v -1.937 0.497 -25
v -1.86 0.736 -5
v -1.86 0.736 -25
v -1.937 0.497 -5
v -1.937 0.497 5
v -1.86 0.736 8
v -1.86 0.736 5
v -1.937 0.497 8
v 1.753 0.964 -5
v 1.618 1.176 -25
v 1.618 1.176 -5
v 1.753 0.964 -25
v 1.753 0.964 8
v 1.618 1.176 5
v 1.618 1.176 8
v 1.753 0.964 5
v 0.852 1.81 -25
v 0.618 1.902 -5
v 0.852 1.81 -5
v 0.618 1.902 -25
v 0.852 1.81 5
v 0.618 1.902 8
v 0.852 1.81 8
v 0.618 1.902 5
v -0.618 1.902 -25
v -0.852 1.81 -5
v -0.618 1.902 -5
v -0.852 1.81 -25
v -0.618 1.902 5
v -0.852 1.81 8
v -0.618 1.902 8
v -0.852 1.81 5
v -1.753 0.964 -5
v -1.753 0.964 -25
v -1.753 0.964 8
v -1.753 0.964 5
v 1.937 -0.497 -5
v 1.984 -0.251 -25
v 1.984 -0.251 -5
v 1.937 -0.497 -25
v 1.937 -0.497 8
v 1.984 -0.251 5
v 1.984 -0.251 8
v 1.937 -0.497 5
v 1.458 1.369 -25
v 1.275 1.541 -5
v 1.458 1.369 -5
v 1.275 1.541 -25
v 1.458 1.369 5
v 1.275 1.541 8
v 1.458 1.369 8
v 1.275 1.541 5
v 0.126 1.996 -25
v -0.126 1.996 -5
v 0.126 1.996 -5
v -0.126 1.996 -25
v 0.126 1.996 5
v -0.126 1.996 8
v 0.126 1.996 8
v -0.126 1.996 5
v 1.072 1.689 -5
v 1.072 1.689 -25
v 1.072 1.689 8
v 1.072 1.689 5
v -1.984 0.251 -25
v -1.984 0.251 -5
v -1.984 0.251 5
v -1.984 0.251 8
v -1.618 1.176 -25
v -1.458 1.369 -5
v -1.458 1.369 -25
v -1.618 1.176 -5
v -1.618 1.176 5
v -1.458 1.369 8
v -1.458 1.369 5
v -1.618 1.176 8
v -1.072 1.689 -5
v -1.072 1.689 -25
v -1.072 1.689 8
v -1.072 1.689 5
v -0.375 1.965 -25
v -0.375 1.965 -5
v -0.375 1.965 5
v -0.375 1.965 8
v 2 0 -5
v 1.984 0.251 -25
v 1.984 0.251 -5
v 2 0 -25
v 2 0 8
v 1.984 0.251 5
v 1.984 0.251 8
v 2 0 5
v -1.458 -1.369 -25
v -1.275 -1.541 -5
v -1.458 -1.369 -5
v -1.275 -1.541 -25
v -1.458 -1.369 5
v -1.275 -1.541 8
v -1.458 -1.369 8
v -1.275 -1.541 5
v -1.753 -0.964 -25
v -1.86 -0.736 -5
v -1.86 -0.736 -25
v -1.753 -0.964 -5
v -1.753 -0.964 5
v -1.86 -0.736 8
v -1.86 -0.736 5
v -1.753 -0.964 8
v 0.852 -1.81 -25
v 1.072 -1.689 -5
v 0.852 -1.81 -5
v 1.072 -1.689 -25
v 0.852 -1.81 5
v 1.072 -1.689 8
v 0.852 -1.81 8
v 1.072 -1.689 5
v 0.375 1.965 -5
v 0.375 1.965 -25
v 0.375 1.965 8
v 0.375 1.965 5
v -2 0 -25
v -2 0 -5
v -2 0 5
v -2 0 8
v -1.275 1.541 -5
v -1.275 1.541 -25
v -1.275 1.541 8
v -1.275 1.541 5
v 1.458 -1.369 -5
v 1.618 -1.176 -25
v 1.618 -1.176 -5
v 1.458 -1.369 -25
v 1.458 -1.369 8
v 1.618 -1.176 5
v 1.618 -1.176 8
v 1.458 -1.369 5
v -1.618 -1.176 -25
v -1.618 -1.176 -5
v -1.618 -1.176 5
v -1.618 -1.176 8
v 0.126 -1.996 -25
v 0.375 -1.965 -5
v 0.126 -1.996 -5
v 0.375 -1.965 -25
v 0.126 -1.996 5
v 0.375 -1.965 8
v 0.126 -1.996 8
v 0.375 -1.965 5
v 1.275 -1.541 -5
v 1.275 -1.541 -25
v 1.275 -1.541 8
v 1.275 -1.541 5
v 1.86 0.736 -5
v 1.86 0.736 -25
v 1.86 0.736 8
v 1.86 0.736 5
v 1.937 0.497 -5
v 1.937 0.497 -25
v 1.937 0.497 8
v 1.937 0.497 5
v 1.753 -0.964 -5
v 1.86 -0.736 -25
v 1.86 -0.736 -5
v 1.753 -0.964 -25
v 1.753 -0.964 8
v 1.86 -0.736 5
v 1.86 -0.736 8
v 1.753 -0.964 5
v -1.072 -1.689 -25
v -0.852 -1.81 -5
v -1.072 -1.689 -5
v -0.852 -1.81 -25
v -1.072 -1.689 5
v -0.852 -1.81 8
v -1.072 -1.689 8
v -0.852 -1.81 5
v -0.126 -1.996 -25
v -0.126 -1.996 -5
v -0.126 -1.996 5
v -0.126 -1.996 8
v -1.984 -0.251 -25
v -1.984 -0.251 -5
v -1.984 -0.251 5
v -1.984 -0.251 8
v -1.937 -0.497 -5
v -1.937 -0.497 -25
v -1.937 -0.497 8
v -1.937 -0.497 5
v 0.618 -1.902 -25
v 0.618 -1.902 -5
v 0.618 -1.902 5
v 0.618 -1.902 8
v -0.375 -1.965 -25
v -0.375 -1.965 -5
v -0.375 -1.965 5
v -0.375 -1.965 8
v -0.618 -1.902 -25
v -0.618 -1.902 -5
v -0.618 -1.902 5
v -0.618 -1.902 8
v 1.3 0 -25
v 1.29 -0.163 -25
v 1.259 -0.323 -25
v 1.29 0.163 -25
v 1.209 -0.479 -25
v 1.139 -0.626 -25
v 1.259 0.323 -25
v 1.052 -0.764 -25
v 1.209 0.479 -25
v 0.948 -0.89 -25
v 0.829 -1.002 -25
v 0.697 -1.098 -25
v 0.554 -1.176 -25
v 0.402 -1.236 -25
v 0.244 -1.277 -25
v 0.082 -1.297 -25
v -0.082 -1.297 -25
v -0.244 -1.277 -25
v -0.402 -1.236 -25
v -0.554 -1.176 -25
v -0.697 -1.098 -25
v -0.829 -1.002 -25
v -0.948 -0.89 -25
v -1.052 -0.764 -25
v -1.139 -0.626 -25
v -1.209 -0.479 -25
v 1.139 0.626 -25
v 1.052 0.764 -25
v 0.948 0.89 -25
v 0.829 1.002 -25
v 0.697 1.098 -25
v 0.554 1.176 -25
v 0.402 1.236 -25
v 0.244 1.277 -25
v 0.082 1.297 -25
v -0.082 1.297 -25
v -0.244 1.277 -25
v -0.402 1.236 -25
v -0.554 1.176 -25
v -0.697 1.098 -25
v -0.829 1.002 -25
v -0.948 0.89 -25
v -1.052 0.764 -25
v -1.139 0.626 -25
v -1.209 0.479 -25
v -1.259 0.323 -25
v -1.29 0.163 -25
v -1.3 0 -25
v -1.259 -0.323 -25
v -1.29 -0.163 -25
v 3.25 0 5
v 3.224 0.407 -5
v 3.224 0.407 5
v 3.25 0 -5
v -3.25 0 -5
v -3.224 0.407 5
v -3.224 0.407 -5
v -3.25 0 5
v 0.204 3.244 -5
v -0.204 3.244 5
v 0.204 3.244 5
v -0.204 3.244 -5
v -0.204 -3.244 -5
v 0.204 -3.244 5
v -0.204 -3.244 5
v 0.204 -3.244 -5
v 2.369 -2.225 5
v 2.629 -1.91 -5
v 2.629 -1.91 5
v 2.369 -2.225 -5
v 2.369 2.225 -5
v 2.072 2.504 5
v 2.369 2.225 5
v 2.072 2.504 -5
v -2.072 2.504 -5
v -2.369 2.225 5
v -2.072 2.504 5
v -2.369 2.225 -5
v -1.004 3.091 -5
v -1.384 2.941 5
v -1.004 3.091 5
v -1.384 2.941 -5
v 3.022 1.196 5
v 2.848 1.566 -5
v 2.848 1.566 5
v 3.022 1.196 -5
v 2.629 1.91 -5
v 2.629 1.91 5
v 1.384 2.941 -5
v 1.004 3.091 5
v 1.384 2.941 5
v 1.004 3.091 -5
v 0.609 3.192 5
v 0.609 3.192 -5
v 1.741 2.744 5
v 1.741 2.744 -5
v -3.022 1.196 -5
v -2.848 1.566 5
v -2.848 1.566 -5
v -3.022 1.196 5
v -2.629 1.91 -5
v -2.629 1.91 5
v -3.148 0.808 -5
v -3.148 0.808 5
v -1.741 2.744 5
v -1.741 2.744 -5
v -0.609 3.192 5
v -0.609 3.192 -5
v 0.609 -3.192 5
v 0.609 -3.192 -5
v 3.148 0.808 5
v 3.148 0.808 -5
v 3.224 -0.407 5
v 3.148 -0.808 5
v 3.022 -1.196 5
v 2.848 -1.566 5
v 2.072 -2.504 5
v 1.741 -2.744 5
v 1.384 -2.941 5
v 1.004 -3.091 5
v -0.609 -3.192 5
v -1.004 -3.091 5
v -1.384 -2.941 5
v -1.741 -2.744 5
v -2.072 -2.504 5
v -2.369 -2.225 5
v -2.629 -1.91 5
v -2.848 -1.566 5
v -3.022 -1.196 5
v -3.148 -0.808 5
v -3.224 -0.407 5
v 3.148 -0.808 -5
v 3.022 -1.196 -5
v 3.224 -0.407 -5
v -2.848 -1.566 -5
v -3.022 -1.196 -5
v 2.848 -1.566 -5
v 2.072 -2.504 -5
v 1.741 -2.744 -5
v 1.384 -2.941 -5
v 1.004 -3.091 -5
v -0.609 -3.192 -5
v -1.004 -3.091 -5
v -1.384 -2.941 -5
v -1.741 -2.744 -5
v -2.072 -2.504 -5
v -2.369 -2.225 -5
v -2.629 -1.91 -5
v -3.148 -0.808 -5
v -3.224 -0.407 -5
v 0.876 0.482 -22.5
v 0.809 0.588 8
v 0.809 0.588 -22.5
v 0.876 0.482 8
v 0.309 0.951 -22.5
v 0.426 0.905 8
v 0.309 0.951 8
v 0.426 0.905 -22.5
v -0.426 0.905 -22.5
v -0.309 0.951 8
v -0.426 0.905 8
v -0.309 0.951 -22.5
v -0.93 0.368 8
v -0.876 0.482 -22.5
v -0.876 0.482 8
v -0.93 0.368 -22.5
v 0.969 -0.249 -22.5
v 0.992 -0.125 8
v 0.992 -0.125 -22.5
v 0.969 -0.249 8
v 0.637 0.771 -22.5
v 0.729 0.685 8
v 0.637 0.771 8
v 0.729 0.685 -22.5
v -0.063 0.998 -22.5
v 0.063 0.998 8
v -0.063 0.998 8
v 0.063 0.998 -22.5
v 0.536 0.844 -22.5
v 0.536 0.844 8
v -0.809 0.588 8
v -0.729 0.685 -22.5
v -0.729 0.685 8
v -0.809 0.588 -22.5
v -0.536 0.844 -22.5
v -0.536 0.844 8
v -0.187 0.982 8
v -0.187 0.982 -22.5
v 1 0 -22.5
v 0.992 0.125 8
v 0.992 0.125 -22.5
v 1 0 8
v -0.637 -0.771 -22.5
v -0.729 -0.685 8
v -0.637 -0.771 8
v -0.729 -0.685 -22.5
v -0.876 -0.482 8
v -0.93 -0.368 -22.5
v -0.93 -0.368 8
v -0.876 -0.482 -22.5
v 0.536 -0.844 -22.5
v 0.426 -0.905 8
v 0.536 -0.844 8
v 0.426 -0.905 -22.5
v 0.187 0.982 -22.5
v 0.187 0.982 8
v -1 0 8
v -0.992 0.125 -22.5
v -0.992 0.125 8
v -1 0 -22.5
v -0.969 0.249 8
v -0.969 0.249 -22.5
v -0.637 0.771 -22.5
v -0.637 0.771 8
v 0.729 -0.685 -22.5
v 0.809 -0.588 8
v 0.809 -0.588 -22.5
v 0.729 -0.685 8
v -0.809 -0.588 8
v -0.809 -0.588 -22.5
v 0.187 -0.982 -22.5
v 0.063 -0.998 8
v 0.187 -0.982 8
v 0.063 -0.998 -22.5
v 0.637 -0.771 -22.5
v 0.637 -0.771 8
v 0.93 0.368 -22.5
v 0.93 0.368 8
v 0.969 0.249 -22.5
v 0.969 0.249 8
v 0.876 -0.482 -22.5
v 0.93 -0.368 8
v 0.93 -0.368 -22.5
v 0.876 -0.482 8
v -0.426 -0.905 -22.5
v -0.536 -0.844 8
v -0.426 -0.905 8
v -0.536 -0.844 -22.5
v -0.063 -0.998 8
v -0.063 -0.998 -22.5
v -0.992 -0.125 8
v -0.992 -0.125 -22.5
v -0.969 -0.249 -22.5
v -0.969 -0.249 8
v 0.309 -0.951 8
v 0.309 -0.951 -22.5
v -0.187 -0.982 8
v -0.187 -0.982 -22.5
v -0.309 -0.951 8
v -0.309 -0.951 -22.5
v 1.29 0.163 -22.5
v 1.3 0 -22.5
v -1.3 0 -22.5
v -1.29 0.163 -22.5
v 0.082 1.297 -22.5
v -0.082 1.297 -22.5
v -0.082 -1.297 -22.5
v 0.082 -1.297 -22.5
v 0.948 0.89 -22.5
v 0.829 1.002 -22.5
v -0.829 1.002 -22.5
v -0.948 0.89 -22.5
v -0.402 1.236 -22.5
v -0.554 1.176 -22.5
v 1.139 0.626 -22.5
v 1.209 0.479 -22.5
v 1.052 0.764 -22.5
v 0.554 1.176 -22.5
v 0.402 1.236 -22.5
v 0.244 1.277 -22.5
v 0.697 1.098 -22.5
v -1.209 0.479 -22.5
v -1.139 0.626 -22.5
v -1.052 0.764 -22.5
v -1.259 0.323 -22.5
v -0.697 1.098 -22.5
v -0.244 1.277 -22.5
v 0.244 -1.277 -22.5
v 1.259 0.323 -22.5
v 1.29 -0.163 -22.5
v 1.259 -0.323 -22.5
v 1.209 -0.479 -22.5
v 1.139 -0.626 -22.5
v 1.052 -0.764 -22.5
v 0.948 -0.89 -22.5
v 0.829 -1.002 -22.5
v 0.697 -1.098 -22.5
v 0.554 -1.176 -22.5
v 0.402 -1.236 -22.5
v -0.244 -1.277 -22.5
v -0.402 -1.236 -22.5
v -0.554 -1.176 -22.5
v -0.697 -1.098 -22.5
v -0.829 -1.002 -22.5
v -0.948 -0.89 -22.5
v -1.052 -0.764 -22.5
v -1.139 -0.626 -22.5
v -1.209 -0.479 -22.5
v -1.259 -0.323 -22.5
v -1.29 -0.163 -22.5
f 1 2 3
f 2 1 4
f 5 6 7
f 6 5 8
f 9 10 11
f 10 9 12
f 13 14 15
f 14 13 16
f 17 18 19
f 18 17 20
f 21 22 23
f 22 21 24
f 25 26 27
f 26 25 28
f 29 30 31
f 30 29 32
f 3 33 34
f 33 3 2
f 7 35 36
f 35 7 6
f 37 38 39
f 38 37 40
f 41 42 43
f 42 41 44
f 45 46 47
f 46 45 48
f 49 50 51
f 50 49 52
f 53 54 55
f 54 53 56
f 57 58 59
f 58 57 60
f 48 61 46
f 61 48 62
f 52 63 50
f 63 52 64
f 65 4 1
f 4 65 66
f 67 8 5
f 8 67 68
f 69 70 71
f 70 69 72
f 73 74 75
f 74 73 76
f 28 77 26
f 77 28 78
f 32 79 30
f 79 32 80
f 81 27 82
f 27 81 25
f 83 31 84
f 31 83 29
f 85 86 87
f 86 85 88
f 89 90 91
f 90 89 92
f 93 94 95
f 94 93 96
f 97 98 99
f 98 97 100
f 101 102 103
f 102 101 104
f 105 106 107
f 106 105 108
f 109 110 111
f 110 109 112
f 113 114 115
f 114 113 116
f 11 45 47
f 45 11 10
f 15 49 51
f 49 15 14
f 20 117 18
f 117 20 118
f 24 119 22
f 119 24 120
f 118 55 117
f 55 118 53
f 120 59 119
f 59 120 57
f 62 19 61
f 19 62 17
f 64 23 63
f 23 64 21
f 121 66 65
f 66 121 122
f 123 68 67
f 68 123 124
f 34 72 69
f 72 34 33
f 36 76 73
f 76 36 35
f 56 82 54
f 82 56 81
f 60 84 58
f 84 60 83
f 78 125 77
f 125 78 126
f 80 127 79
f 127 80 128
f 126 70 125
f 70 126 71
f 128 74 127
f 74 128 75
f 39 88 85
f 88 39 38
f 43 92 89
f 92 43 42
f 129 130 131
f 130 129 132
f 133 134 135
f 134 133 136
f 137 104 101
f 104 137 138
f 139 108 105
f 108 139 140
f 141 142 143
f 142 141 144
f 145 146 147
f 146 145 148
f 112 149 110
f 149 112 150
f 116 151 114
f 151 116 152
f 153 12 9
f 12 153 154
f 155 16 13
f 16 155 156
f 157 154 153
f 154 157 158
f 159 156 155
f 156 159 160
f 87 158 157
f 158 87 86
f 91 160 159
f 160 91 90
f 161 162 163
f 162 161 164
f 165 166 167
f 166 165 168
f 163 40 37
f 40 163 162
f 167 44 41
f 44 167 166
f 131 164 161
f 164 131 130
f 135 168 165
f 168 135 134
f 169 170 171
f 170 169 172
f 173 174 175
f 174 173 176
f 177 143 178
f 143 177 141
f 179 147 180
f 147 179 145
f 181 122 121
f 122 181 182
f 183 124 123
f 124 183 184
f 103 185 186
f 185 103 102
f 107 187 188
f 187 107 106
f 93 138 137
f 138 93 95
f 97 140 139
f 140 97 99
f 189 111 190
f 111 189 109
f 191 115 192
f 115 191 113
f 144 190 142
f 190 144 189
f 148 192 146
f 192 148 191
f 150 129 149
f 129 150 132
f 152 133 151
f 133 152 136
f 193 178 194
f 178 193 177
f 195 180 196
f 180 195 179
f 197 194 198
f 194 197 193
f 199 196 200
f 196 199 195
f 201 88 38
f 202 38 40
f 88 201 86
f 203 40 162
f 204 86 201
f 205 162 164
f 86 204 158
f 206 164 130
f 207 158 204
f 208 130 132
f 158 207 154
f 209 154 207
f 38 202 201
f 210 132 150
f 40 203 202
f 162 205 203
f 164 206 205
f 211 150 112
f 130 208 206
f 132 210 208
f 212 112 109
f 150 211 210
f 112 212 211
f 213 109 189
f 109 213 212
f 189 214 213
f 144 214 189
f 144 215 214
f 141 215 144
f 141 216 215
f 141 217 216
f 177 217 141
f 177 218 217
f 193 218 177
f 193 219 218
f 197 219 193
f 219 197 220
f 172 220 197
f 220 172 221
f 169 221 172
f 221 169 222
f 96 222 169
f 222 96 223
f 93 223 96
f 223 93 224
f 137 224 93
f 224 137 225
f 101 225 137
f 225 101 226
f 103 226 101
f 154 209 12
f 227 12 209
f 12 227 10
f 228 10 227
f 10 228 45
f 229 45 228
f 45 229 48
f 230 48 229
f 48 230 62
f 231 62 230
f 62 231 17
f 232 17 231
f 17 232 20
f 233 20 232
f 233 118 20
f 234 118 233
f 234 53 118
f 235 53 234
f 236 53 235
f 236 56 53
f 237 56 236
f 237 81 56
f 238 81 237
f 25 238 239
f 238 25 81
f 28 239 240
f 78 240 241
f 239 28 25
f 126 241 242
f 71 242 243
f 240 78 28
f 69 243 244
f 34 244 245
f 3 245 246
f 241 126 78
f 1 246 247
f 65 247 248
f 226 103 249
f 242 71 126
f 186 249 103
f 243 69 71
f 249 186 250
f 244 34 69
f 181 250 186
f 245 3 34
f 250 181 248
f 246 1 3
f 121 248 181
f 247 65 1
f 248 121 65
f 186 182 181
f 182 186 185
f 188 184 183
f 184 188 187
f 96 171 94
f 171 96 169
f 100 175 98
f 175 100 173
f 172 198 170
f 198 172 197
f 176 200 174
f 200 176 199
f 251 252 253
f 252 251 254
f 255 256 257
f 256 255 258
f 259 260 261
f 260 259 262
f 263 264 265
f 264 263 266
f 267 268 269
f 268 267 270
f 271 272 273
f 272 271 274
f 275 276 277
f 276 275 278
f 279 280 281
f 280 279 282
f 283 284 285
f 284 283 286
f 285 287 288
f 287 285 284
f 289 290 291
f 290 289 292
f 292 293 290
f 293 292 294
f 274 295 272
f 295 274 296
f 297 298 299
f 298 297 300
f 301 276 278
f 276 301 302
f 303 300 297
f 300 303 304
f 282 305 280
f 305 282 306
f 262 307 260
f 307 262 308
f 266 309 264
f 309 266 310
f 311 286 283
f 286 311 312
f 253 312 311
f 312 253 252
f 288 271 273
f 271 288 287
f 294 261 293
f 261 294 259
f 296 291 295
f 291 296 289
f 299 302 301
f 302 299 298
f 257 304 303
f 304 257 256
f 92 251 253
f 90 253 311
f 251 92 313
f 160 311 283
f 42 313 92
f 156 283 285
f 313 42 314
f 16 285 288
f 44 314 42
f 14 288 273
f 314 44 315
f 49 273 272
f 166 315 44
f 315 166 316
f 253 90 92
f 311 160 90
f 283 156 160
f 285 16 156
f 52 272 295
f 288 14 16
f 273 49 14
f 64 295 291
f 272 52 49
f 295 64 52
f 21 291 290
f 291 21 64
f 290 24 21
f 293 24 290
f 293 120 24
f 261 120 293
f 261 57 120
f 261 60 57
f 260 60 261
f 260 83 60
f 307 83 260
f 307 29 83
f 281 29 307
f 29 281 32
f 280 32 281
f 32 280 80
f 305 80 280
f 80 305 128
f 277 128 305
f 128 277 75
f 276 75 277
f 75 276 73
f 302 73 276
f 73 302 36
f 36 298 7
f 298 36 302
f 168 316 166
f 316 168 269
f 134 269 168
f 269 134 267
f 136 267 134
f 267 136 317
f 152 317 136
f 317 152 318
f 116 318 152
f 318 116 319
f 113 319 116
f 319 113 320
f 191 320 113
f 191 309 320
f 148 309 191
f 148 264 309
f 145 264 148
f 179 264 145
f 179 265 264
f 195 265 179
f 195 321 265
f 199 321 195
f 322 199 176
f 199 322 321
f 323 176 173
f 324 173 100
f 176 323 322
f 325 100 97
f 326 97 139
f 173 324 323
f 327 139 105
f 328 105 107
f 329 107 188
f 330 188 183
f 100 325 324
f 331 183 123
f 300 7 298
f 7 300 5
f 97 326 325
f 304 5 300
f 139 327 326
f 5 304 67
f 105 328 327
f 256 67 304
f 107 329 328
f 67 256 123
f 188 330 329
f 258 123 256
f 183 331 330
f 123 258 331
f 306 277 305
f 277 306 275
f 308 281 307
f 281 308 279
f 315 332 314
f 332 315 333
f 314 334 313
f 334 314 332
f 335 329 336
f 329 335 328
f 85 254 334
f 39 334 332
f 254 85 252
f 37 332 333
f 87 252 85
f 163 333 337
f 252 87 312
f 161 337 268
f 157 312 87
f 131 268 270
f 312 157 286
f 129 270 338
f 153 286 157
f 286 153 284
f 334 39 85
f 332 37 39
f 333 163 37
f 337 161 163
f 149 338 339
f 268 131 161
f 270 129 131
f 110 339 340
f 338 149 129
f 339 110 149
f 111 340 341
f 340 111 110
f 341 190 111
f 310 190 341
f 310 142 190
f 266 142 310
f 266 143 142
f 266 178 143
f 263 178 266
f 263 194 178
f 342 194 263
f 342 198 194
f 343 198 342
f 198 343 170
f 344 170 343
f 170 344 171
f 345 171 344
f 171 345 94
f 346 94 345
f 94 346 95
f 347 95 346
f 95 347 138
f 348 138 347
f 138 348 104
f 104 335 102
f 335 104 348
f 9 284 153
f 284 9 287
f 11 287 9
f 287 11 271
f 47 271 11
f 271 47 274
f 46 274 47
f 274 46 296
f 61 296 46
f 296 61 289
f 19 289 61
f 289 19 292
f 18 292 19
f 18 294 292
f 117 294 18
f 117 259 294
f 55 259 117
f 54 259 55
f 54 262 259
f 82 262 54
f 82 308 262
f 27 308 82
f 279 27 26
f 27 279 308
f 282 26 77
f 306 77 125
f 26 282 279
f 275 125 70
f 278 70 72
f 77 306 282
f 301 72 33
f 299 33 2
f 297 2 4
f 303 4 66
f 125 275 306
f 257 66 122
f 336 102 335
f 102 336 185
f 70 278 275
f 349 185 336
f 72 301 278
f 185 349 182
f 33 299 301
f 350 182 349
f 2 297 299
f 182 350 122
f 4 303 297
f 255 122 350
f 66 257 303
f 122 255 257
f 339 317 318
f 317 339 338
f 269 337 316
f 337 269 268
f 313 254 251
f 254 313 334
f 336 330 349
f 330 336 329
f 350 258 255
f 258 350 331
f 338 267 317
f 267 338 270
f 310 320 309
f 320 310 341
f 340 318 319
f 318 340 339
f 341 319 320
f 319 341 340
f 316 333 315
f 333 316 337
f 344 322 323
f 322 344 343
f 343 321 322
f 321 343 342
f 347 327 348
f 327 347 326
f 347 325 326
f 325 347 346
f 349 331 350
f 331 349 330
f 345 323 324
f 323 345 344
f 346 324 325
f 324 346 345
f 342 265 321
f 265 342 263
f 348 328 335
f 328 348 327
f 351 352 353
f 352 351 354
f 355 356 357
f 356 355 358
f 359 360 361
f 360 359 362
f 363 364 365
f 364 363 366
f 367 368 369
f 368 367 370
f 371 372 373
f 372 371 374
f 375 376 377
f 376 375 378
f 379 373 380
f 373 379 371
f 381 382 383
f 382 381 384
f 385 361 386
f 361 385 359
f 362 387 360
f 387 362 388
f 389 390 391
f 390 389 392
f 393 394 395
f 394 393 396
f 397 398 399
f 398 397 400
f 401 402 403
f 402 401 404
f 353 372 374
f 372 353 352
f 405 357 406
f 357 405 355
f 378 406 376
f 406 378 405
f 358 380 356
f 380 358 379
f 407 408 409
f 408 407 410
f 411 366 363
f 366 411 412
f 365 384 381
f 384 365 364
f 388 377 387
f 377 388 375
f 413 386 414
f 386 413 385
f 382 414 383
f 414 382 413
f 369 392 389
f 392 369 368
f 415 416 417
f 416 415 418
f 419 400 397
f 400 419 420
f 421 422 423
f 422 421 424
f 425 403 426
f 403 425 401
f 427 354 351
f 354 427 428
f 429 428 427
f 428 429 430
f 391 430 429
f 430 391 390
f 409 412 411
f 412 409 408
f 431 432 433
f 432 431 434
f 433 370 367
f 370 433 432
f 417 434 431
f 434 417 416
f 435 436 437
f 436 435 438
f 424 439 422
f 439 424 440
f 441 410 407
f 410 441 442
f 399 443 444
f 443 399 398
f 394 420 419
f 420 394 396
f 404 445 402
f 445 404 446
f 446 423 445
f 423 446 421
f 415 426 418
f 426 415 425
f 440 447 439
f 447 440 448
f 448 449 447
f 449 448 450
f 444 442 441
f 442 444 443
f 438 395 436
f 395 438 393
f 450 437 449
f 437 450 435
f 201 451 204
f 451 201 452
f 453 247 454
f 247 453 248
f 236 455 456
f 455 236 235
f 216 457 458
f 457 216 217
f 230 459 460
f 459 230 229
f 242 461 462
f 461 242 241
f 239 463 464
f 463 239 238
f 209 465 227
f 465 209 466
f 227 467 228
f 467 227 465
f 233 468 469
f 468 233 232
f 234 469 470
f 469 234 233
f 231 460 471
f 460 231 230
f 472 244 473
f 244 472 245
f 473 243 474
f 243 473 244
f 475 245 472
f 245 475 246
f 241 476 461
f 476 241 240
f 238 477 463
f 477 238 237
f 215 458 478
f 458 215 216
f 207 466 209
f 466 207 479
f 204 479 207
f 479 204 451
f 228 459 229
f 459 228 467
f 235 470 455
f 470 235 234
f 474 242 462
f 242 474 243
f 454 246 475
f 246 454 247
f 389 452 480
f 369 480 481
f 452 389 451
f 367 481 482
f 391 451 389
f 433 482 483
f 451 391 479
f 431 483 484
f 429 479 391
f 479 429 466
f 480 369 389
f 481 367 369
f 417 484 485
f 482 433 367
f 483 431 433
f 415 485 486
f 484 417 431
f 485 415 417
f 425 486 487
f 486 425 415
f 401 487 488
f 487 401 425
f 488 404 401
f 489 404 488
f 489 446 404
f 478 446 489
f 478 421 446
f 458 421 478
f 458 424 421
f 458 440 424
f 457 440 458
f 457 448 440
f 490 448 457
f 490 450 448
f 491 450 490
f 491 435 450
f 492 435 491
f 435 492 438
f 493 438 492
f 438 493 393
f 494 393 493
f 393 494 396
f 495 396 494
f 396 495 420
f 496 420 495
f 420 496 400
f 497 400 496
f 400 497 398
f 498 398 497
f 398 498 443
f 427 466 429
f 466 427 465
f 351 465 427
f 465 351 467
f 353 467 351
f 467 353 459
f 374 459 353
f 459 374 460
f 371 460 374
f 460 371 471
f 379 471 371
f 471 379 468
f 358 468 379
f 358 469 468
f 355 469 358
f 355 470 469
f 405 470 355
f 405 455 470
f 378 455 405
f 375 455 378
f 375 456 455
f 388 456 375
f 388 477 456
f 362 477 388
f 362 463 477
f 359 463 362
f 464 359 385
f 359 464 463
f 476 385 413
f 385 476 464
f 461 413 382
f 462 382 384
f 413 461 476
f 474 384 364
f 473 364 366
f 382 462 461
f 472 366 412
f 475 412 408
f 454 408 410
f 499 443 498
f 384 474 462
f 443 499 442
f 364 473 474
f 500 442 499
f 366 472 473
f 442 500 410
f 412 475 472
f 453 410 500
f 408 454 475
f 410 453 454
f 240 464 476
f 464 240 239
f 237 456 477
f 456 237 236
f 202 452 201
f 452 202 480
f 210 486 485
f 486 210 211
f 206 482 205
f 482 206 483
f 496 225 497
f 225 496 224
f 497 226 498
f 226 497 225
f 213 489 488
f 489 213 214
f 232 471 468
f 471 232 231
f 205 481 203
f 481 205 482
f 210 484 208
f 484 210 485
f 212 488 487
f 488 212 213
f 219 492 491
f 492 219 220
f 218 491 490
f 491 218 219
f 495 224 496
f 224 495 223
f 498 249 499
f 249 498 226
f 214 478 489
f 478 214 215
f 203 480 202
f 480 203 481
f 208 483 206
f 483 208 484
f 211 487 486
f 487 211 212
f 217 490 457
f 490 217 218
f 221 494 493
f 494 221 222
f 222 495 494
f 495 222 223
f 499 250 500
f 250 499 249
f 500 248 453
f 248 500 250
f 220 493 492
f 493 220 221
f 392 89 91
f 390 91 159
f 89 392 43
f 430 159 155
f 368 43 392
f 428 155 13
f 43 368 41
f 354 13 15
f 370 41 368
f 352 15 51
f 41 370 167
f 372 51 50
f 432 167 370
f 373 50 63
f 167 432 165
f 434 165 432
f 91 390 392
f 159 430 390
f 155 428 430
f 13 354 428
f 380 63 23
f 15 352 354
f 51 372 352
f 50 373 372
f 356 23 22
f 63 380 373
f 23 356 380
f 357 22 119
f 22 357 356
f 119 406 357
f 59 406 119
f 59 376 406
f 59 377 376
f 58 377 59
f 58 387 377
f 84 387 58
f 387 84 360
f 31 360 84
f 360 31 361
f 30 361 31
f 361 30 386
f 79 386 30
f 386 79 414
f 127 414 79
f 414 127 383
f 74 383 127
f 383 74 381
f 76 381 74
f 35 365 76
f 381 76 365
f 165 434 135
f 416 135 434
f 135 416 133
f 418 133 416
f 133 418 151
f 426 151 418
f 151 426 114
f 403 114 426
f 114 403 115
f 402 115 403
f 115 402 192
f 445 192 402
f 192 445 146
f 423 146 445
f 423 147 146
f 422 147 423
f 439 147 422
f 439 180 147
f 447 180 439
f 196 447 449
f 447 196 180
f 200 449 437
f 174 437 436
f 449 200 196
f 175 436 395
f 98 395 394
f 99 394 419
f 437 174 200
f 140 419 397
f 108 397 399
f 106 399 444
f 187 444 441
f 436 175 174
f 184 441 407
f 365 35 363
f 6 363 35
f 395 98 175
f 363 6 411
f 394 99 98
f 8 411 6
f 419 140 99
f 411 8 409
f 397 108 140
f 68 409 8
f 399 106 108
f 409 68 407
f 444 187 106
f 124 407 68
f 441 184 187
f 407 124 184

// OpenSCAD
difference () {
    union () {
        cylinder (50, r=2, center = true, $fn = 50);
        cylinder (10, r = 3.25, center = true, $fn =50);
    }
    union () {
        cylinder (55, r=1, center = true, $fn = 50);
        translate ([0,0,-25]) cylinder (5, r=1.3, center = true, $fn = 50);
        translate ([-15, -15, 8]) cube ([30, 30, 30], center = false);
    }
}
